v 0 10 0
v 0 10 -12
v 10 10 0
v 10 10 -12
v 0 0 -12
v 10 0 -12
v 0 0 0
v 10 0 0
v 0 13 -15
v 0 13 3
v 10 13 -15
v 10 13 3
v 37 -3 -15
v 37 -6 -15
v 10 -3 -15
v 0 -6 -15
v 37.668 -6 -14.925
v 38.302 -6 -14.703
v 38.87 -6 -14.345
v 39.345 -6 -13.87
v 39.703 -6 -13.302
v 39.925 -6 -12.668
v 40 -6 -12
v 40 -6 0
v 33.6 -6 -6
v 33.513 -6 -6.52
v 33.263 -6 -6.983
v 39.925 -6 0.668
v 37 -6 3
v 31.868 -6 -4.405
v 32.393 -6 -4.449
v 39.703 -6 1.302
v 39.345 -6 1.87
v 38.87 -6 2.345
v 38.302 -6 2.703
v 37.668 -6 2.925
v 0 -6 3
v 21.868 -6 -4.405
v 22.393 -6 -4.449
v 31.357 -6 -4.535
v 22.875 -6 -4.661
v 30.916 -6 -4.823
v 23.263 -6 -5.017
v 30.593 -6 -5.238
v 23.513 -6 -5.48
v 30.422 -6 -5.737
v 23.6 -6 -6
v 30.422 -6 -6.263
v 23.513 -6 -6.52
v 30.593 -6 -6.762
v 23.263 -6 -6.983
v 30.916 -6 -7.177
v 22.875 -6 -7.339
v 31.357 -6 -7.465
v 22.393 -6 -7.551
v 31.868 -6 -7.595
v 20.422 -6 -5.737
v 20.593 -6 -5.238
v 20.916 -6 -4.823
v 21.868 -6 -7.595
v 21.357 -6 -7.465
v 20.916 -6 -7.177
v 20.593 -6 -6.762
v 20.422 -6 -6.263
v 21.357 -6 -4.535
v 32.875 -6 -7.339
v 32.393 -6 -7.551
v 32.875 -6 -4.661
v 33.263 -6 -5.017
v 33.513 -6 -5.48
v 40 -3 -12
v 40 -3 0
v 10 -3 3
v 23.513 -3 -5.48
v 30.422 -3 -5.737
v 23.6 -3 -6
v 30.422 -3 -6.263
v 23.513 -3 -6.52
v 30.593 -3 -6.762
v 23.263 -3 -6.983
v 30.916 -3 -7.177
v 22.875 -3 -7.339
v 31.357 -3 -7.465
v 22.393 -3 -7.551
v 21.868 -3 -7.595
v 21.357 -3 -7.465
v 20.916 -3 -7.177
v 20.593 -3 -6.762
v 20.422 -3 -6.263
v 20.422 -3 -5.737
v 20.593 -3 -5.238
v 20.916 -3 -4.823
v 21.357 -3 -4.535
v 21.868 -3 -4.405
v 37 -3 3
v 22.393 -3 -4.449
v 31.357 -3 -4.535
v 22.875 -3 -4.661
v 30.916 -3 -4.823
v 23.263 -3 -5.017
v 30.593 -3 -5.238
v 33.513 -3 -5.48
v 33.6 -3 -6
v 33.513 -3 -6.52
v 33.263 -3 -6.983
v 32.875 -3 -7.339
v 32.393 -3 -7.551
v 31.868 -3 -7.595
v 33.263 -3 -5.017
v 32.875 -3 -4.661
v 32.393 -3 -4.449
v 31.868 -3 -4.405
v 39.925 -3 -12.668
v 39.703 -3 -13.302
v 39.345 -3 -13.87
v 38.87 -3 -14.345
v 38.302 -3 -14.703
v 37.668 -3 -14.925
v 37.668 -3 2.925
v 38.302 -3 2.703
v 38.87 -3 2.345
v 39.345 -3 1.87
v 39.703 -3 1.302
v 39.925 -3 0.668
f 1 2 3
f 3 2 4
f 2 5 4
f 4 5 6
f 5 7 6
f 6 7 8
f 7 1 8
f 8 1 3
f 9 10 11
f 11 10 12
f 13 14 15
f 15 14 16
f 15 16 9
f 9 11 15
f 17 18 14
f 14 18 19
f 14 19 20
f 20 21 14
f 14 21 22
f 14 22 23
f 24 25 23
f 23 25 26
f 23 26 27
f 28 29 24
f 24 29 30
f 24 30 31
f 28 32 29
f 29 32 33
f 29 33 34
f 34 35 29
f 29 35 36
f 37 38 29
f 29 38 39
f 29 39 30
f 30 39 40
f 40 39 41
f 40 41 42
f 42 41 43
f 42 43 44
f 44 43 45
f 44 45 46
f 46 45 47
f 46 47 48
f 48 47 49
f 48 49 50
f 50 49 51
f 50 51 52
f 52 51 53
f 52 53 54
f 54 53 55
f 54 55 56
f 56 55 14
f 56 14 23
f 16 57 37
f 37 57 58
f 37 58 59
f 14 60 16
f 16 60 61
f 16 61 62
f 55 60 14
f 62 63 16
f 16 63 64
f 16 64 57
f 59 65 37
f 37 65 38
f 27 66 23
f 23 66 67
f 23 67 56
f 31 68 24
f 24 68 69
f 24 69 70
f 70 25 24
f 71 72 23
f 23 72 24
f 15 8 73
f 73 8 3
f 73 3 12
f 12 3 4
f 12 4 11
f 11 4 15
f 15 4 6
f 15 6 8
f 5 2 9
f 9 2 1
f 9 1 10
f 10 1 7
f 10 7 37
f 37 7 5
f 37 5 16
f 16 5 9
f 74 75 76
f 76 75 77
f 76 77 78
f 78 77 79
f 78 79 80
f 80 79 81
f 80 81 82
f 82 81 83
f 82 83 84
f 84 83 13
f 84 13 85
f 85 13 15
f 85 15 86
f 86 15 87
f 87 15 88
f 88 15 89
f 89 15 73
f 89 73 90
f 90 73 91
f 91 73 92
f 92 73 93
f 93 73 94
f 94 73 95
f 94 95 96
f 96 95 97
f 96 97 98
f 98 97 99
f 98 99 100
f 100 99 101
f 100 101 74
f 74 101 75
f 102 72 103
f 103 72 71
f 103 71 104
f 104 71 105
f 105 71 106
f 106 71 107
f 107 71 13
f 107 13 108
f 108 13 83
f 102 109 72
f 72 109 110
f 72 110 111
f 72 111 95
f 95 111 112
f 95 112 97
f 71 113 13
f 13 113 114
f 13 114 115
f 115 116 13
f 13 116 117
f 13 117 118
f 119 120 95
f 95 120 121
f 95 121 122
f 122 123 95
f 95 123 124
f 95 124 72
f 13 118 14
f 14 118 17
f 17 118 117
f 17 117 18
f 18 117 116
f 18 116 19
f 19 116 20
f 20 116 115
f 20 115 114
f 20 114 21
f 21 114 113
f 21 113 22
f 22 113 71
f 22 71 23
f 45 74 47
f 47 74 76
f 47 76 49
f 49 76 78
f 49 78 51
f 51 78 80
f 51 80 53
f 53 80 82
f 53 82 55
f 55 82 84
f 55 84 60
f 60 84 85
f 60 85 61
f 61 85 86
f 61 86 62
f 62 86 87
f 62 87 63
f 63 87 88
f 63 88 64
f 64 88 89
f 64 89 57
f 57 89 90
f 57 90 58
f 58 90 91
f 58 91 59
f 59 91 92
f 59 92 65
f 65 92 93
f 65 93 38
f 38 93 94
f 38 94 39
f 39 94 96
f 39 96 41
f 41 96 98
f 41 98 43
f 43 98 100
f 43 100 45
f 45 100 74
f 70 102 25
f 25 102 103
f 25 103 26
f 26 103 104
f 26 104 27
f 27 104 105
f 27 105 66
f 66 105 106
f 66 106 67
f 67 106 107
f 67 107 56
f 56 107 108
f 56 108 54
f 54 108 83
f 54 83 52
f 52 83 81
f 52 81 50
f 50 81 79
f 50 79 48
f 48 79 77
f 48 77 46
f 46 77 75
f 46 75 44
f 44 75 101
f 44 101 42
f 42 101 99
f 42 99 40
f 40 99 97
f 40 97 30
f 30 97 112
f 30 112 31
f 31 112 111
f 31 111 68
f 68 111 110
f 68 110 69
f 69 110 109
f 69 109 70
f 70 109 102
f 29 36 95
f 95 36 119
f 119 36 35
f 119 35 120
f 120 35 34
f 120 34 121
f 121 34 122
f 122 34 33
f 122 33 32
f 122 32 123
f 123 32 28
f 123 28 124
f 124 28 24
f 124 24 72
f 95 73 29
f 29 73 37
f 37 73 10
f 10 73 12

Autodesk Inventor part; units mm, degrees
ref_plane "YZ Plane" through (0, 0, 0) normal (1, 0, 0) x (0, 1, 0)
ref_plane "XZ Plane" through (0, 0, 0) normal (0, 1, 0) x (-1, 0, 0)
ref_plane "XY Plane" through (0, 0, 0) normal (0, 0, 1) x (1, 0, 0)
sketch "Sketch1" plane through (0, 0, 0) normal (1, 0, 0) x (0, 1, 0)
  line L0 (0, 0) -> (10, 0)
  line L1 (10, 0) -> (10, -12)
  line L2 (10, -12) -> (0, -12)
  line L3 (0, -12) -> (0, 0)
  line L4 (13, 3) -> (-6, 3)
  line L5 (-6, 3) -> (-6, -15)
  line L6 (-6, -15) -> (13, -15)
  line L7 (13, -15) -> (13, 3)
  dimension "d0" = 10
  dimension "d1" = 12
  dimension "d2" = 3
  dimension "d3" = 3
  dimension "d4" = 6
  dimension "d5" = 3
extrude "Extrusion1" add sketch "Sketch1" along normal blind 10
sketch "Sketch2" plane through (10, 0, 0) normal (1, 0, 0) x (0, 0, -1)
  line L0 (15, -6) -> (15, 13) construction
  line L1 (-3, -6) -> (15, -6) construction
  line L2 (-3, 13) -> (-3, -6) construction
  line L3 (15, -6) -> (15, 13) projected
  line L4 (-3, -6) -> (15, -6)
  line L5 (15, -6) -> (15, -3)
  line L6 (15, -3) -> (-3, -3)
  line L7 (-3, -3) -> (-3, -6)
  point P0 (0, 0)
  dimension "d8" = 3
extrude "Extrusion2" add sketch "Sketch2" along normal blind 30
sketch "Sketch3" plane through (10, -3, 3) normal (0, 1, 0) x (1, 0, 0)
  circle A0 centre (12, 9) radius 1.6
  circle A1 centre (22, 9) radius 1.6
  line L0 (0, 18) -> (30, 18) projected
  line L1 (0, 0) -> (30, 0) projected
  line L2 (30, 18) -> (30, 0) projected
  point P0 (-10, 3)
  dimension "d11" = 3.2
  dimension "d12" = 3.2
  dimension "d13" = 9
  dimension "d14" = 9
  dimension "d15" = 8
  dimension "d16" = 10
extrude "Extrusion3" cut sketch "Sketch3" against normal through all
fillet "Fillet1" radius 3 2 edges at (40, -4.5, 3) (40, -4.5, -15)
equation "\"d3\" = d2"
equation "\"d4\" = 2 * d2"
equation "\"d5\" = d2"
properties part number "Wheel Holder Rev 2"
